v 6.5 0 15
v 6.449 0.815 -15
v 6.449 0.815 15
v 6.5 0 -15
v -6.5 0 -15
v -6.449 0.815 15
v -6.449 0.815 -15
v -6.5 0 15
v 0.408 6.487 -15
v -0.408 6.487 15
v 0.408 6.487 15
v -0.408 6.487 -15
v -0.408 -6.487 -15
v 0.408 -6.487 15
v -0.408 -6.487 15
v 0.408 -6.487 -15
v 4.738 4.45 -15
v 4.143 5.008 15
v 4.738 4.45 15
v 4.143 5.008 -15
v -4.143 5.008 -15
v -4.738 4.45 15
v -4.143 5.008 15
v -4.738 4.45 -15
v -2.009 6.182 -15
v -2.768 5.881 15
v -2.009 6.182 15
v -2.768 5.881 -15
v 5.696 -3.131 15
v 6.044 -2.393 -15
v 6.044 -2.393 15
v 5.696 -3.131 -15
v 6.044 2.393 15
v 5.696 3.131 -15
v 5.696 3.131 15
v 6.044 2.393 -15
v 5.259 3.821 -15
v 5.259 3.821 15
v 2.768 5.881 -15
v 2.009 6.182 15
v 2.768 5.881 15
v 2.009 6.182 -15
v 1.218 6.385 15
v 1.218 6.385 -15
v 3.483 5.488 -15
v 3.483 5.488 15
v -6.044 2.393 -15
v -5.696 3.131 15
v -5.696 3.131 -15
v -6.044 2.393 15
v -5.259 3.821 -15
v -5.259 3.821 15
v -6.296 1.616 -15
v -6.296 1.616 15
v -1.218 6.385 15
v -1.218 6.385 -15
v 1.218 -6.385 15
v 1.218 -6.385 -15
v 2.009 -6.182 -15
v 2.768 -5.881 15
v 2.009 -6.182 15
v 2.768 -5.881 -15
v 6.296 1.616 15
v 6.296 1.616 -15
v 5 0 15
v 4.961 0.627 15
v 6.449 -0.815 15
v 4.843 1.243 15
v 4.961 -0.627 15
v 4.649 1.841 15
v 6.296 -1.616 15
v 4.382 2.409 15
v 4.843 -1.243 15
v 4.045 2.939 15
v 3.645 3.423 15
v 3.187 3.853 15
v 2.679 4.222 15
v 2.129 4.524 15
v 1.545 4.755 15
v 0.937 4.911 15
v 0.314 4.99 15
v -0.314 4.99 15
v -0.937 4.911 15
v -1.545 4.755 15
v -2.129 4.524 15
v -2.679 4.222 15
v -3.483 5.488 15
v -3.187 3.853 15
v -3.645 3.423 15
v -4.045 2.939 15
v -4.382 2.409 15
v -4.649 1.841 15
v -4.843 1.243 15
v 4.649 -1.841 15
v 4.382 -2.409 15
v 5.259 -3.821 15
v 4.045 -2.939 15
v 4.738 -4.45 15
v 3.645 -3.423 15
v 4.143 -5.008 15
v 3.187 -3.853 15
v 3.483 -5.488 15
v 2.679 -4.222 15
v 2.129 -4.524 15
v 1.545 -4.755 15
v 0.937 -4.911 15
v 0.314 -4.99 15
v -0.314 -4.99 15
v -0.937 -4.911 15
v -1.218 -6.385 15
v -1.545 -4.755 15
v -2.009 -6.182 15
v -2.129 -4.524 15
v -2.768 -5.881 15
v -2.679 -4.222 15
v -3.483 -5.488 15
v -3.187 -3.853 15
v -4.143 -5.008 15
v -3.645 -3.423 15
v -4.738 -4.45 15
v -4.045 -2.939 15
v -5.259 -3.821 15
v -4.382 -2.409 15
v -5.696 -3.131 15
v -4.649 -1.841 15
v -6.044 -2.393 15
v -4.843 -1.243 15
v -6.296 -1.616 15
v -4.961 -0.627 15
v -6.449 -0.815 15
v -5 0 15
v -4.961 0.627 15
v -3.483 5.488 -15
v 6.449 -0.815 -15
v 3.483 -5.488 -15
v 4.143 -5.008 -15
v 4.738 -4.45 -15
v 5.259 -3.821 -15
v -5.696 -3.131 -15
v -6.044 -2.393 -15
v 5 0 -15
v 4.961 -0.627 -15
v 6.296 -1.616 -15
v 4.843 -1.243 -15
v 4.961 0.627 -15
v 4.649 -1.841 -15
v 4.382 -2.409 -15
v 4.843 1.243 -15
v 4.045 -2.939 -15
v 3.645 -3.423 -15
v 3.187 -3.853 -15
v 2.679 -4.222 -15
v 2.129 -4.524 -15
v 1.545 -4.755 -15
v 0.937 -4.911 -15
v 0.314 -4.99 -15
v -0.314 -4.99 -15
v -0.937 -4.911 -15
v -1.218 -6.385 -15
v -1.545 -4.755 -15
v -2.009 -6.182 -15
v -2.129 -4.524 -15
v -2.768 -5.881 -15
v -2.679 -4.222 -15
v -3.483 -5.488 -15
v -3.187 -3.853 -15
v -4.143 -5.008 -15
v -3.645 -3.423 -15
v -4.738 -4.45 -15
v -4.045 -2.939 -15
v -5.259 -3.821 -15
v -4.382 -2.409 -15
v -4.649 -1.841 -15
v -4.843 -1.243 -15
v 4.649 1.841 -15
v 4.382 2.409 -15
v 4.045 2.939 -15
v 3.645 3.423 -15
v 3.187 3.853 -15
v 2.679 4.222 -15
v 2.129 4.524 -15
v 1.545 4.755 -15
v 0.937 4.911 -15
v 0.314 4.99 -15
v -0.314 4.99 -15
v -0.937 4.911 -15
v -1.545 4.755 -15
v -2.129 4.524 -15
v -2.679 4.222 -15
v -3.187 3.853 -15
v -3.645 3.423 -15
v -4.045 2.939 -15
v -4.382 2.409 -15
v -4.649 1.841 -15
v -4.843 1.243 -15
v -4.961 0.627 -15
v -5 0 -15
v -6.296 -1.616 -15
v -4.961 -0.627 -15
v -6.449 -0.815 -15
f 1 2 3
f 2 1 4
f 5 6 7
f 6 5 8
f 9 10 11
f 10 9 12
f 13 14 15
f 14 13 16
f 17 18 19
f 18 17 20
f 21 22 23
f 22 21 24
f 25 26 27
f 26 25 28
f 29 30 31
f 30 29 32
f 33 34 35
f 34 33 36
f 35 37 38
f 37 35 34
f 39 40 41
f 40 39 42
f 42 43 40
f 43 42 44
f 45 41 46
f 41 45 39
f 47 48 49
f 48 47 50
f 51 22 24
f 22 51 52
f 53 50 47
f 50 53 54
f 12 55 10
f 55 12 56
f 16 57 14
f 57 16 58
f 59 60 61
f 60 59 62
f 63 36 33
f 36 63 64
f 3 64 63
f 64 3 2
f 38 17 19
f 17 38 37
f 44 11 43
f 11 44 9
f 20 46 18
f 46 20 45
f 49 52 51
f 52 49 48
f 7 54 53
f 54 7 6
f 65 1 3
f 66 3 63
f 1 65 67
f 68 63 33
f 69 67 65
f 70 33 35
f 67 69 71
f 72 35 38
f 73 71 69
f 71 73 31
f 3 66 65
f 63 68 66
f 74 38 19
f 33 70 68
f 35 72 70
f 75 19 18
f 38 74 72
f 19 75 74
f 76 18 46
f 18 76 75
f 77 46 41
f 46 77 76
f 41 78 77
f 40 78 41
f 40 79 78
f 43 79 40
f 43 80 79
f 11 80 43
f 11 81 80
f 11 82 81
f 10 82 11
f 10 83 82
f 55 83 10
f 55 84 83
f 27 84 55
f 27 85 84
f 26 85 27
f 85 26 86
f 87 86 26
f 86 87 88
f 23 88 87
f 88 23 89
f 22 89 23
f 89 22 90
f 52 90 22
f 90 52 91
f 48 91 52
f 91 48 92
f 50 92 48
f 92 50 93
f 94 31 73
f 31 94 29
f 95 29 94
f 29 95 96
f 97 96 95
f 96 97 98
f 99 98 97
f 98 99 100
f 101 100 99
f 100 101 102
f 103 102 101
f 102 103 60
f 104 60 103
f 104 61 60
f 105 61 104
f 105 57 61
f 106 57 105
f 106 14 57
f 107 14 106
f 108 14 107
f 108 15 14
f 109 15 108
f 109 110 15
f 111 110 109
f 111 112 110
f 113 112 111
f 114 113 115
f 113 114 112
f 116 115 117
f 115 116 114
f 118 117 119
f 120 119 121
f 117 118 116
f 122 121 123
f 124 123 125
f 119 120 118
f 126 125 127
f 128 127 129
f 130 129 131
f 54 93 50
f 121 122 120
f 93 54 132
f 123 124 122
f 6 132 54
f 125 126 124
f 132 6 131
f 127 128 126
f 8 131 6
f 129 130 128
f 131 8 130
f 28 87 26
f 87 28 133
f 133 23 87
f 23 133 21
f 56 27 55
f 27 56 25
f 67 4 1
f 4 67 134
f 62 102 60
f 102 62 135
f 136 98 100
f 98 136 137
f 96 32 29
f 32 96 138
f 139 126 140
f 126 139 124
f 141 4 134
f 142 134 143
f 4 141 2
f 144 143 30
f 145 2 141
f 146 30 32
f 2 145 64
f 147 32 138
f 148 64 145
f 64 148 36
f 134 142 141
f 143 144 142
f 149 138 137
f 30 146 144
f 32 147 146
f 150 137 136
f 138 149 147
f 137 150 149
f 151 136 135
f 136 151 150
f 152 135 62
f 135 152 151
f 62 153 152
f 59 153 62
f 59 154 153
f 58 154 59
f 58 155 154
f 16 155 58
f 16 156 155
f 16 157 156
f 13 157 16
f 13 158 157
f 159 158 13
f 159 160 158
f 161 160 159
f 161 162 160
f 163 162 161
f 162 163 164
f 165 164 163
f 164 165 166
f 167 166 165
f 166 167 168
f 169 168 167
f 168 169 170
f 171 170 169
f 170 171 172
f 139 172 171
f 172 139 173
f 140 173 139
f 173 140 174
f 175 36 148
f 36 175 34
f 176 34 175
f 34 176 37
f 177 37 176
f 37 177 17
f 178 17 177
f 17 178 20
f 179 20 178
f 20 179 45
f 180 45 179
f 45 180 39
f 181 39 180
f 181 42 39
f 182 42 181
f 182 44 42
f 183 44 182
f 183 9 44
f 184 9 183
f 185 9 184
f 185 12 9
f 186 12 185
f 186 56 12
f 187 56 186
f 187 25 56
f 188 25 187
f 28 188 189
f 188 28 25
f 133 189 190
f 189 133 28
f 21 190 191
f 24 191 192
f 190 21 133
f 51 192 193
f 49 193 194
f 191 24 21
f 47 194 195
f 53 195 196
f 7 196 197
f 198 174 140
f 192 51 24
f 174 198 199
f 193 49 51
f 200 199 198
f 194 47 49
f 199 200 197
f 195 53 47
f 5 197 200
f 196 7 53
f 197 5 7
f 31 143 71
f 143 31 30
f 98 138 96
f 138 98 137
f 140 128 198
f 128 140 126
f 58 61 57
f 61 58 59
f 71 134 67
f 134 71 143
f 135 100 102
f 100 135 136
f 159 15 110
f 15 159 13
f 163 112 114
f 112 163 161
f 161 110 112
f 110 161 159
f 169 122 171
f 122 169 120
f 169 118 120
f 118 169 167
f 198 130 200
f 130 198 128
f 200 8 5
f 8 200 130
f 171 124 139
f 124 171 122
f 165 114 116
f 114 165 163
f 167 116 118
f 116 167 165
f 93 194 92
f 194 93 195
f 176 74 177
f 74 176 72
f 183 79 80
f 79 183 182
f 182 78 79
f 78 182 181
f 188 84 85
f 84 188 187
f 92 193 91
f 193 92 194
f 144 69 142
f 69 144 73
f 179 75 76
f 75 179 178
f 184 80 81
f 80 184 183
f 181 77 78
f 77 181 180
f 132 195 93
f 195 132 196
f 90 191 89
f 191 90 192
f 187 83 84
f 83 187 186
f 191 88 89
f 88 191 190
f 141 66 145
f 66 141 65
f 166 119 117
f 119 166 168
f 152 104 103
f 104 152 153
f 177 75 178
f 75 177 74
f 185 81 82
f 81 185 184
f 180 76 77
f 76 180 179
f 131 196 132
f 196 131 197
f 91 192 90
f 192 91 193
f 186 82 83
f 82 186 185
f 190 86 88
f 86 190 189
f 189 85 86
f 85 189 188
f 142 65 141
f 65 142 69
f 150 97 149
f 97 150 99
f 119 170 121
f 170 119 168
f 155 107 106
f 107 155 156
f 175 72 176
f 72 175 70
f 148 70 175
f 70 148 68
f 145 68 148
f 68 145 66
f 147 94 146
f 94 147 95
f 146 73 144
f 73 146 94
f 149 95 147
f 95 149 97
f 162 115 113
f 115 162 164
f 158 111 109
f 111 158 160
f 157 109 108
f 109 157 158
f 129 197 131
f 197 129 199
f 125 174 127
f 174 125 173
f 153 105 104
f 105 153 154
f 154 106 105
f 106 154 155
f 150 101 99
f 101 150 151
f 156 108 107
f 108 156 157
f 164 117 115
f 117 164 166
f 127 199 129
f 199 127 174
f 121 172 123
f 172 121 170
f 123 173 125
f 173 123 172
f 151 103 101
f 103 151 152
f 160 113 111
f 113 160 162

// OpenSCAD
$fn = 50;


difference() {
	union() {
		translate(v = [0, 0, -15.0000000000]) {
			cylinder(h = 30, r = 6.5000000000);
		}
	}
	union() {
		translate(v = [0, 0, -100.0000000000]) {
			cylinder(h = 200, r = 5);
		}
	}
}
